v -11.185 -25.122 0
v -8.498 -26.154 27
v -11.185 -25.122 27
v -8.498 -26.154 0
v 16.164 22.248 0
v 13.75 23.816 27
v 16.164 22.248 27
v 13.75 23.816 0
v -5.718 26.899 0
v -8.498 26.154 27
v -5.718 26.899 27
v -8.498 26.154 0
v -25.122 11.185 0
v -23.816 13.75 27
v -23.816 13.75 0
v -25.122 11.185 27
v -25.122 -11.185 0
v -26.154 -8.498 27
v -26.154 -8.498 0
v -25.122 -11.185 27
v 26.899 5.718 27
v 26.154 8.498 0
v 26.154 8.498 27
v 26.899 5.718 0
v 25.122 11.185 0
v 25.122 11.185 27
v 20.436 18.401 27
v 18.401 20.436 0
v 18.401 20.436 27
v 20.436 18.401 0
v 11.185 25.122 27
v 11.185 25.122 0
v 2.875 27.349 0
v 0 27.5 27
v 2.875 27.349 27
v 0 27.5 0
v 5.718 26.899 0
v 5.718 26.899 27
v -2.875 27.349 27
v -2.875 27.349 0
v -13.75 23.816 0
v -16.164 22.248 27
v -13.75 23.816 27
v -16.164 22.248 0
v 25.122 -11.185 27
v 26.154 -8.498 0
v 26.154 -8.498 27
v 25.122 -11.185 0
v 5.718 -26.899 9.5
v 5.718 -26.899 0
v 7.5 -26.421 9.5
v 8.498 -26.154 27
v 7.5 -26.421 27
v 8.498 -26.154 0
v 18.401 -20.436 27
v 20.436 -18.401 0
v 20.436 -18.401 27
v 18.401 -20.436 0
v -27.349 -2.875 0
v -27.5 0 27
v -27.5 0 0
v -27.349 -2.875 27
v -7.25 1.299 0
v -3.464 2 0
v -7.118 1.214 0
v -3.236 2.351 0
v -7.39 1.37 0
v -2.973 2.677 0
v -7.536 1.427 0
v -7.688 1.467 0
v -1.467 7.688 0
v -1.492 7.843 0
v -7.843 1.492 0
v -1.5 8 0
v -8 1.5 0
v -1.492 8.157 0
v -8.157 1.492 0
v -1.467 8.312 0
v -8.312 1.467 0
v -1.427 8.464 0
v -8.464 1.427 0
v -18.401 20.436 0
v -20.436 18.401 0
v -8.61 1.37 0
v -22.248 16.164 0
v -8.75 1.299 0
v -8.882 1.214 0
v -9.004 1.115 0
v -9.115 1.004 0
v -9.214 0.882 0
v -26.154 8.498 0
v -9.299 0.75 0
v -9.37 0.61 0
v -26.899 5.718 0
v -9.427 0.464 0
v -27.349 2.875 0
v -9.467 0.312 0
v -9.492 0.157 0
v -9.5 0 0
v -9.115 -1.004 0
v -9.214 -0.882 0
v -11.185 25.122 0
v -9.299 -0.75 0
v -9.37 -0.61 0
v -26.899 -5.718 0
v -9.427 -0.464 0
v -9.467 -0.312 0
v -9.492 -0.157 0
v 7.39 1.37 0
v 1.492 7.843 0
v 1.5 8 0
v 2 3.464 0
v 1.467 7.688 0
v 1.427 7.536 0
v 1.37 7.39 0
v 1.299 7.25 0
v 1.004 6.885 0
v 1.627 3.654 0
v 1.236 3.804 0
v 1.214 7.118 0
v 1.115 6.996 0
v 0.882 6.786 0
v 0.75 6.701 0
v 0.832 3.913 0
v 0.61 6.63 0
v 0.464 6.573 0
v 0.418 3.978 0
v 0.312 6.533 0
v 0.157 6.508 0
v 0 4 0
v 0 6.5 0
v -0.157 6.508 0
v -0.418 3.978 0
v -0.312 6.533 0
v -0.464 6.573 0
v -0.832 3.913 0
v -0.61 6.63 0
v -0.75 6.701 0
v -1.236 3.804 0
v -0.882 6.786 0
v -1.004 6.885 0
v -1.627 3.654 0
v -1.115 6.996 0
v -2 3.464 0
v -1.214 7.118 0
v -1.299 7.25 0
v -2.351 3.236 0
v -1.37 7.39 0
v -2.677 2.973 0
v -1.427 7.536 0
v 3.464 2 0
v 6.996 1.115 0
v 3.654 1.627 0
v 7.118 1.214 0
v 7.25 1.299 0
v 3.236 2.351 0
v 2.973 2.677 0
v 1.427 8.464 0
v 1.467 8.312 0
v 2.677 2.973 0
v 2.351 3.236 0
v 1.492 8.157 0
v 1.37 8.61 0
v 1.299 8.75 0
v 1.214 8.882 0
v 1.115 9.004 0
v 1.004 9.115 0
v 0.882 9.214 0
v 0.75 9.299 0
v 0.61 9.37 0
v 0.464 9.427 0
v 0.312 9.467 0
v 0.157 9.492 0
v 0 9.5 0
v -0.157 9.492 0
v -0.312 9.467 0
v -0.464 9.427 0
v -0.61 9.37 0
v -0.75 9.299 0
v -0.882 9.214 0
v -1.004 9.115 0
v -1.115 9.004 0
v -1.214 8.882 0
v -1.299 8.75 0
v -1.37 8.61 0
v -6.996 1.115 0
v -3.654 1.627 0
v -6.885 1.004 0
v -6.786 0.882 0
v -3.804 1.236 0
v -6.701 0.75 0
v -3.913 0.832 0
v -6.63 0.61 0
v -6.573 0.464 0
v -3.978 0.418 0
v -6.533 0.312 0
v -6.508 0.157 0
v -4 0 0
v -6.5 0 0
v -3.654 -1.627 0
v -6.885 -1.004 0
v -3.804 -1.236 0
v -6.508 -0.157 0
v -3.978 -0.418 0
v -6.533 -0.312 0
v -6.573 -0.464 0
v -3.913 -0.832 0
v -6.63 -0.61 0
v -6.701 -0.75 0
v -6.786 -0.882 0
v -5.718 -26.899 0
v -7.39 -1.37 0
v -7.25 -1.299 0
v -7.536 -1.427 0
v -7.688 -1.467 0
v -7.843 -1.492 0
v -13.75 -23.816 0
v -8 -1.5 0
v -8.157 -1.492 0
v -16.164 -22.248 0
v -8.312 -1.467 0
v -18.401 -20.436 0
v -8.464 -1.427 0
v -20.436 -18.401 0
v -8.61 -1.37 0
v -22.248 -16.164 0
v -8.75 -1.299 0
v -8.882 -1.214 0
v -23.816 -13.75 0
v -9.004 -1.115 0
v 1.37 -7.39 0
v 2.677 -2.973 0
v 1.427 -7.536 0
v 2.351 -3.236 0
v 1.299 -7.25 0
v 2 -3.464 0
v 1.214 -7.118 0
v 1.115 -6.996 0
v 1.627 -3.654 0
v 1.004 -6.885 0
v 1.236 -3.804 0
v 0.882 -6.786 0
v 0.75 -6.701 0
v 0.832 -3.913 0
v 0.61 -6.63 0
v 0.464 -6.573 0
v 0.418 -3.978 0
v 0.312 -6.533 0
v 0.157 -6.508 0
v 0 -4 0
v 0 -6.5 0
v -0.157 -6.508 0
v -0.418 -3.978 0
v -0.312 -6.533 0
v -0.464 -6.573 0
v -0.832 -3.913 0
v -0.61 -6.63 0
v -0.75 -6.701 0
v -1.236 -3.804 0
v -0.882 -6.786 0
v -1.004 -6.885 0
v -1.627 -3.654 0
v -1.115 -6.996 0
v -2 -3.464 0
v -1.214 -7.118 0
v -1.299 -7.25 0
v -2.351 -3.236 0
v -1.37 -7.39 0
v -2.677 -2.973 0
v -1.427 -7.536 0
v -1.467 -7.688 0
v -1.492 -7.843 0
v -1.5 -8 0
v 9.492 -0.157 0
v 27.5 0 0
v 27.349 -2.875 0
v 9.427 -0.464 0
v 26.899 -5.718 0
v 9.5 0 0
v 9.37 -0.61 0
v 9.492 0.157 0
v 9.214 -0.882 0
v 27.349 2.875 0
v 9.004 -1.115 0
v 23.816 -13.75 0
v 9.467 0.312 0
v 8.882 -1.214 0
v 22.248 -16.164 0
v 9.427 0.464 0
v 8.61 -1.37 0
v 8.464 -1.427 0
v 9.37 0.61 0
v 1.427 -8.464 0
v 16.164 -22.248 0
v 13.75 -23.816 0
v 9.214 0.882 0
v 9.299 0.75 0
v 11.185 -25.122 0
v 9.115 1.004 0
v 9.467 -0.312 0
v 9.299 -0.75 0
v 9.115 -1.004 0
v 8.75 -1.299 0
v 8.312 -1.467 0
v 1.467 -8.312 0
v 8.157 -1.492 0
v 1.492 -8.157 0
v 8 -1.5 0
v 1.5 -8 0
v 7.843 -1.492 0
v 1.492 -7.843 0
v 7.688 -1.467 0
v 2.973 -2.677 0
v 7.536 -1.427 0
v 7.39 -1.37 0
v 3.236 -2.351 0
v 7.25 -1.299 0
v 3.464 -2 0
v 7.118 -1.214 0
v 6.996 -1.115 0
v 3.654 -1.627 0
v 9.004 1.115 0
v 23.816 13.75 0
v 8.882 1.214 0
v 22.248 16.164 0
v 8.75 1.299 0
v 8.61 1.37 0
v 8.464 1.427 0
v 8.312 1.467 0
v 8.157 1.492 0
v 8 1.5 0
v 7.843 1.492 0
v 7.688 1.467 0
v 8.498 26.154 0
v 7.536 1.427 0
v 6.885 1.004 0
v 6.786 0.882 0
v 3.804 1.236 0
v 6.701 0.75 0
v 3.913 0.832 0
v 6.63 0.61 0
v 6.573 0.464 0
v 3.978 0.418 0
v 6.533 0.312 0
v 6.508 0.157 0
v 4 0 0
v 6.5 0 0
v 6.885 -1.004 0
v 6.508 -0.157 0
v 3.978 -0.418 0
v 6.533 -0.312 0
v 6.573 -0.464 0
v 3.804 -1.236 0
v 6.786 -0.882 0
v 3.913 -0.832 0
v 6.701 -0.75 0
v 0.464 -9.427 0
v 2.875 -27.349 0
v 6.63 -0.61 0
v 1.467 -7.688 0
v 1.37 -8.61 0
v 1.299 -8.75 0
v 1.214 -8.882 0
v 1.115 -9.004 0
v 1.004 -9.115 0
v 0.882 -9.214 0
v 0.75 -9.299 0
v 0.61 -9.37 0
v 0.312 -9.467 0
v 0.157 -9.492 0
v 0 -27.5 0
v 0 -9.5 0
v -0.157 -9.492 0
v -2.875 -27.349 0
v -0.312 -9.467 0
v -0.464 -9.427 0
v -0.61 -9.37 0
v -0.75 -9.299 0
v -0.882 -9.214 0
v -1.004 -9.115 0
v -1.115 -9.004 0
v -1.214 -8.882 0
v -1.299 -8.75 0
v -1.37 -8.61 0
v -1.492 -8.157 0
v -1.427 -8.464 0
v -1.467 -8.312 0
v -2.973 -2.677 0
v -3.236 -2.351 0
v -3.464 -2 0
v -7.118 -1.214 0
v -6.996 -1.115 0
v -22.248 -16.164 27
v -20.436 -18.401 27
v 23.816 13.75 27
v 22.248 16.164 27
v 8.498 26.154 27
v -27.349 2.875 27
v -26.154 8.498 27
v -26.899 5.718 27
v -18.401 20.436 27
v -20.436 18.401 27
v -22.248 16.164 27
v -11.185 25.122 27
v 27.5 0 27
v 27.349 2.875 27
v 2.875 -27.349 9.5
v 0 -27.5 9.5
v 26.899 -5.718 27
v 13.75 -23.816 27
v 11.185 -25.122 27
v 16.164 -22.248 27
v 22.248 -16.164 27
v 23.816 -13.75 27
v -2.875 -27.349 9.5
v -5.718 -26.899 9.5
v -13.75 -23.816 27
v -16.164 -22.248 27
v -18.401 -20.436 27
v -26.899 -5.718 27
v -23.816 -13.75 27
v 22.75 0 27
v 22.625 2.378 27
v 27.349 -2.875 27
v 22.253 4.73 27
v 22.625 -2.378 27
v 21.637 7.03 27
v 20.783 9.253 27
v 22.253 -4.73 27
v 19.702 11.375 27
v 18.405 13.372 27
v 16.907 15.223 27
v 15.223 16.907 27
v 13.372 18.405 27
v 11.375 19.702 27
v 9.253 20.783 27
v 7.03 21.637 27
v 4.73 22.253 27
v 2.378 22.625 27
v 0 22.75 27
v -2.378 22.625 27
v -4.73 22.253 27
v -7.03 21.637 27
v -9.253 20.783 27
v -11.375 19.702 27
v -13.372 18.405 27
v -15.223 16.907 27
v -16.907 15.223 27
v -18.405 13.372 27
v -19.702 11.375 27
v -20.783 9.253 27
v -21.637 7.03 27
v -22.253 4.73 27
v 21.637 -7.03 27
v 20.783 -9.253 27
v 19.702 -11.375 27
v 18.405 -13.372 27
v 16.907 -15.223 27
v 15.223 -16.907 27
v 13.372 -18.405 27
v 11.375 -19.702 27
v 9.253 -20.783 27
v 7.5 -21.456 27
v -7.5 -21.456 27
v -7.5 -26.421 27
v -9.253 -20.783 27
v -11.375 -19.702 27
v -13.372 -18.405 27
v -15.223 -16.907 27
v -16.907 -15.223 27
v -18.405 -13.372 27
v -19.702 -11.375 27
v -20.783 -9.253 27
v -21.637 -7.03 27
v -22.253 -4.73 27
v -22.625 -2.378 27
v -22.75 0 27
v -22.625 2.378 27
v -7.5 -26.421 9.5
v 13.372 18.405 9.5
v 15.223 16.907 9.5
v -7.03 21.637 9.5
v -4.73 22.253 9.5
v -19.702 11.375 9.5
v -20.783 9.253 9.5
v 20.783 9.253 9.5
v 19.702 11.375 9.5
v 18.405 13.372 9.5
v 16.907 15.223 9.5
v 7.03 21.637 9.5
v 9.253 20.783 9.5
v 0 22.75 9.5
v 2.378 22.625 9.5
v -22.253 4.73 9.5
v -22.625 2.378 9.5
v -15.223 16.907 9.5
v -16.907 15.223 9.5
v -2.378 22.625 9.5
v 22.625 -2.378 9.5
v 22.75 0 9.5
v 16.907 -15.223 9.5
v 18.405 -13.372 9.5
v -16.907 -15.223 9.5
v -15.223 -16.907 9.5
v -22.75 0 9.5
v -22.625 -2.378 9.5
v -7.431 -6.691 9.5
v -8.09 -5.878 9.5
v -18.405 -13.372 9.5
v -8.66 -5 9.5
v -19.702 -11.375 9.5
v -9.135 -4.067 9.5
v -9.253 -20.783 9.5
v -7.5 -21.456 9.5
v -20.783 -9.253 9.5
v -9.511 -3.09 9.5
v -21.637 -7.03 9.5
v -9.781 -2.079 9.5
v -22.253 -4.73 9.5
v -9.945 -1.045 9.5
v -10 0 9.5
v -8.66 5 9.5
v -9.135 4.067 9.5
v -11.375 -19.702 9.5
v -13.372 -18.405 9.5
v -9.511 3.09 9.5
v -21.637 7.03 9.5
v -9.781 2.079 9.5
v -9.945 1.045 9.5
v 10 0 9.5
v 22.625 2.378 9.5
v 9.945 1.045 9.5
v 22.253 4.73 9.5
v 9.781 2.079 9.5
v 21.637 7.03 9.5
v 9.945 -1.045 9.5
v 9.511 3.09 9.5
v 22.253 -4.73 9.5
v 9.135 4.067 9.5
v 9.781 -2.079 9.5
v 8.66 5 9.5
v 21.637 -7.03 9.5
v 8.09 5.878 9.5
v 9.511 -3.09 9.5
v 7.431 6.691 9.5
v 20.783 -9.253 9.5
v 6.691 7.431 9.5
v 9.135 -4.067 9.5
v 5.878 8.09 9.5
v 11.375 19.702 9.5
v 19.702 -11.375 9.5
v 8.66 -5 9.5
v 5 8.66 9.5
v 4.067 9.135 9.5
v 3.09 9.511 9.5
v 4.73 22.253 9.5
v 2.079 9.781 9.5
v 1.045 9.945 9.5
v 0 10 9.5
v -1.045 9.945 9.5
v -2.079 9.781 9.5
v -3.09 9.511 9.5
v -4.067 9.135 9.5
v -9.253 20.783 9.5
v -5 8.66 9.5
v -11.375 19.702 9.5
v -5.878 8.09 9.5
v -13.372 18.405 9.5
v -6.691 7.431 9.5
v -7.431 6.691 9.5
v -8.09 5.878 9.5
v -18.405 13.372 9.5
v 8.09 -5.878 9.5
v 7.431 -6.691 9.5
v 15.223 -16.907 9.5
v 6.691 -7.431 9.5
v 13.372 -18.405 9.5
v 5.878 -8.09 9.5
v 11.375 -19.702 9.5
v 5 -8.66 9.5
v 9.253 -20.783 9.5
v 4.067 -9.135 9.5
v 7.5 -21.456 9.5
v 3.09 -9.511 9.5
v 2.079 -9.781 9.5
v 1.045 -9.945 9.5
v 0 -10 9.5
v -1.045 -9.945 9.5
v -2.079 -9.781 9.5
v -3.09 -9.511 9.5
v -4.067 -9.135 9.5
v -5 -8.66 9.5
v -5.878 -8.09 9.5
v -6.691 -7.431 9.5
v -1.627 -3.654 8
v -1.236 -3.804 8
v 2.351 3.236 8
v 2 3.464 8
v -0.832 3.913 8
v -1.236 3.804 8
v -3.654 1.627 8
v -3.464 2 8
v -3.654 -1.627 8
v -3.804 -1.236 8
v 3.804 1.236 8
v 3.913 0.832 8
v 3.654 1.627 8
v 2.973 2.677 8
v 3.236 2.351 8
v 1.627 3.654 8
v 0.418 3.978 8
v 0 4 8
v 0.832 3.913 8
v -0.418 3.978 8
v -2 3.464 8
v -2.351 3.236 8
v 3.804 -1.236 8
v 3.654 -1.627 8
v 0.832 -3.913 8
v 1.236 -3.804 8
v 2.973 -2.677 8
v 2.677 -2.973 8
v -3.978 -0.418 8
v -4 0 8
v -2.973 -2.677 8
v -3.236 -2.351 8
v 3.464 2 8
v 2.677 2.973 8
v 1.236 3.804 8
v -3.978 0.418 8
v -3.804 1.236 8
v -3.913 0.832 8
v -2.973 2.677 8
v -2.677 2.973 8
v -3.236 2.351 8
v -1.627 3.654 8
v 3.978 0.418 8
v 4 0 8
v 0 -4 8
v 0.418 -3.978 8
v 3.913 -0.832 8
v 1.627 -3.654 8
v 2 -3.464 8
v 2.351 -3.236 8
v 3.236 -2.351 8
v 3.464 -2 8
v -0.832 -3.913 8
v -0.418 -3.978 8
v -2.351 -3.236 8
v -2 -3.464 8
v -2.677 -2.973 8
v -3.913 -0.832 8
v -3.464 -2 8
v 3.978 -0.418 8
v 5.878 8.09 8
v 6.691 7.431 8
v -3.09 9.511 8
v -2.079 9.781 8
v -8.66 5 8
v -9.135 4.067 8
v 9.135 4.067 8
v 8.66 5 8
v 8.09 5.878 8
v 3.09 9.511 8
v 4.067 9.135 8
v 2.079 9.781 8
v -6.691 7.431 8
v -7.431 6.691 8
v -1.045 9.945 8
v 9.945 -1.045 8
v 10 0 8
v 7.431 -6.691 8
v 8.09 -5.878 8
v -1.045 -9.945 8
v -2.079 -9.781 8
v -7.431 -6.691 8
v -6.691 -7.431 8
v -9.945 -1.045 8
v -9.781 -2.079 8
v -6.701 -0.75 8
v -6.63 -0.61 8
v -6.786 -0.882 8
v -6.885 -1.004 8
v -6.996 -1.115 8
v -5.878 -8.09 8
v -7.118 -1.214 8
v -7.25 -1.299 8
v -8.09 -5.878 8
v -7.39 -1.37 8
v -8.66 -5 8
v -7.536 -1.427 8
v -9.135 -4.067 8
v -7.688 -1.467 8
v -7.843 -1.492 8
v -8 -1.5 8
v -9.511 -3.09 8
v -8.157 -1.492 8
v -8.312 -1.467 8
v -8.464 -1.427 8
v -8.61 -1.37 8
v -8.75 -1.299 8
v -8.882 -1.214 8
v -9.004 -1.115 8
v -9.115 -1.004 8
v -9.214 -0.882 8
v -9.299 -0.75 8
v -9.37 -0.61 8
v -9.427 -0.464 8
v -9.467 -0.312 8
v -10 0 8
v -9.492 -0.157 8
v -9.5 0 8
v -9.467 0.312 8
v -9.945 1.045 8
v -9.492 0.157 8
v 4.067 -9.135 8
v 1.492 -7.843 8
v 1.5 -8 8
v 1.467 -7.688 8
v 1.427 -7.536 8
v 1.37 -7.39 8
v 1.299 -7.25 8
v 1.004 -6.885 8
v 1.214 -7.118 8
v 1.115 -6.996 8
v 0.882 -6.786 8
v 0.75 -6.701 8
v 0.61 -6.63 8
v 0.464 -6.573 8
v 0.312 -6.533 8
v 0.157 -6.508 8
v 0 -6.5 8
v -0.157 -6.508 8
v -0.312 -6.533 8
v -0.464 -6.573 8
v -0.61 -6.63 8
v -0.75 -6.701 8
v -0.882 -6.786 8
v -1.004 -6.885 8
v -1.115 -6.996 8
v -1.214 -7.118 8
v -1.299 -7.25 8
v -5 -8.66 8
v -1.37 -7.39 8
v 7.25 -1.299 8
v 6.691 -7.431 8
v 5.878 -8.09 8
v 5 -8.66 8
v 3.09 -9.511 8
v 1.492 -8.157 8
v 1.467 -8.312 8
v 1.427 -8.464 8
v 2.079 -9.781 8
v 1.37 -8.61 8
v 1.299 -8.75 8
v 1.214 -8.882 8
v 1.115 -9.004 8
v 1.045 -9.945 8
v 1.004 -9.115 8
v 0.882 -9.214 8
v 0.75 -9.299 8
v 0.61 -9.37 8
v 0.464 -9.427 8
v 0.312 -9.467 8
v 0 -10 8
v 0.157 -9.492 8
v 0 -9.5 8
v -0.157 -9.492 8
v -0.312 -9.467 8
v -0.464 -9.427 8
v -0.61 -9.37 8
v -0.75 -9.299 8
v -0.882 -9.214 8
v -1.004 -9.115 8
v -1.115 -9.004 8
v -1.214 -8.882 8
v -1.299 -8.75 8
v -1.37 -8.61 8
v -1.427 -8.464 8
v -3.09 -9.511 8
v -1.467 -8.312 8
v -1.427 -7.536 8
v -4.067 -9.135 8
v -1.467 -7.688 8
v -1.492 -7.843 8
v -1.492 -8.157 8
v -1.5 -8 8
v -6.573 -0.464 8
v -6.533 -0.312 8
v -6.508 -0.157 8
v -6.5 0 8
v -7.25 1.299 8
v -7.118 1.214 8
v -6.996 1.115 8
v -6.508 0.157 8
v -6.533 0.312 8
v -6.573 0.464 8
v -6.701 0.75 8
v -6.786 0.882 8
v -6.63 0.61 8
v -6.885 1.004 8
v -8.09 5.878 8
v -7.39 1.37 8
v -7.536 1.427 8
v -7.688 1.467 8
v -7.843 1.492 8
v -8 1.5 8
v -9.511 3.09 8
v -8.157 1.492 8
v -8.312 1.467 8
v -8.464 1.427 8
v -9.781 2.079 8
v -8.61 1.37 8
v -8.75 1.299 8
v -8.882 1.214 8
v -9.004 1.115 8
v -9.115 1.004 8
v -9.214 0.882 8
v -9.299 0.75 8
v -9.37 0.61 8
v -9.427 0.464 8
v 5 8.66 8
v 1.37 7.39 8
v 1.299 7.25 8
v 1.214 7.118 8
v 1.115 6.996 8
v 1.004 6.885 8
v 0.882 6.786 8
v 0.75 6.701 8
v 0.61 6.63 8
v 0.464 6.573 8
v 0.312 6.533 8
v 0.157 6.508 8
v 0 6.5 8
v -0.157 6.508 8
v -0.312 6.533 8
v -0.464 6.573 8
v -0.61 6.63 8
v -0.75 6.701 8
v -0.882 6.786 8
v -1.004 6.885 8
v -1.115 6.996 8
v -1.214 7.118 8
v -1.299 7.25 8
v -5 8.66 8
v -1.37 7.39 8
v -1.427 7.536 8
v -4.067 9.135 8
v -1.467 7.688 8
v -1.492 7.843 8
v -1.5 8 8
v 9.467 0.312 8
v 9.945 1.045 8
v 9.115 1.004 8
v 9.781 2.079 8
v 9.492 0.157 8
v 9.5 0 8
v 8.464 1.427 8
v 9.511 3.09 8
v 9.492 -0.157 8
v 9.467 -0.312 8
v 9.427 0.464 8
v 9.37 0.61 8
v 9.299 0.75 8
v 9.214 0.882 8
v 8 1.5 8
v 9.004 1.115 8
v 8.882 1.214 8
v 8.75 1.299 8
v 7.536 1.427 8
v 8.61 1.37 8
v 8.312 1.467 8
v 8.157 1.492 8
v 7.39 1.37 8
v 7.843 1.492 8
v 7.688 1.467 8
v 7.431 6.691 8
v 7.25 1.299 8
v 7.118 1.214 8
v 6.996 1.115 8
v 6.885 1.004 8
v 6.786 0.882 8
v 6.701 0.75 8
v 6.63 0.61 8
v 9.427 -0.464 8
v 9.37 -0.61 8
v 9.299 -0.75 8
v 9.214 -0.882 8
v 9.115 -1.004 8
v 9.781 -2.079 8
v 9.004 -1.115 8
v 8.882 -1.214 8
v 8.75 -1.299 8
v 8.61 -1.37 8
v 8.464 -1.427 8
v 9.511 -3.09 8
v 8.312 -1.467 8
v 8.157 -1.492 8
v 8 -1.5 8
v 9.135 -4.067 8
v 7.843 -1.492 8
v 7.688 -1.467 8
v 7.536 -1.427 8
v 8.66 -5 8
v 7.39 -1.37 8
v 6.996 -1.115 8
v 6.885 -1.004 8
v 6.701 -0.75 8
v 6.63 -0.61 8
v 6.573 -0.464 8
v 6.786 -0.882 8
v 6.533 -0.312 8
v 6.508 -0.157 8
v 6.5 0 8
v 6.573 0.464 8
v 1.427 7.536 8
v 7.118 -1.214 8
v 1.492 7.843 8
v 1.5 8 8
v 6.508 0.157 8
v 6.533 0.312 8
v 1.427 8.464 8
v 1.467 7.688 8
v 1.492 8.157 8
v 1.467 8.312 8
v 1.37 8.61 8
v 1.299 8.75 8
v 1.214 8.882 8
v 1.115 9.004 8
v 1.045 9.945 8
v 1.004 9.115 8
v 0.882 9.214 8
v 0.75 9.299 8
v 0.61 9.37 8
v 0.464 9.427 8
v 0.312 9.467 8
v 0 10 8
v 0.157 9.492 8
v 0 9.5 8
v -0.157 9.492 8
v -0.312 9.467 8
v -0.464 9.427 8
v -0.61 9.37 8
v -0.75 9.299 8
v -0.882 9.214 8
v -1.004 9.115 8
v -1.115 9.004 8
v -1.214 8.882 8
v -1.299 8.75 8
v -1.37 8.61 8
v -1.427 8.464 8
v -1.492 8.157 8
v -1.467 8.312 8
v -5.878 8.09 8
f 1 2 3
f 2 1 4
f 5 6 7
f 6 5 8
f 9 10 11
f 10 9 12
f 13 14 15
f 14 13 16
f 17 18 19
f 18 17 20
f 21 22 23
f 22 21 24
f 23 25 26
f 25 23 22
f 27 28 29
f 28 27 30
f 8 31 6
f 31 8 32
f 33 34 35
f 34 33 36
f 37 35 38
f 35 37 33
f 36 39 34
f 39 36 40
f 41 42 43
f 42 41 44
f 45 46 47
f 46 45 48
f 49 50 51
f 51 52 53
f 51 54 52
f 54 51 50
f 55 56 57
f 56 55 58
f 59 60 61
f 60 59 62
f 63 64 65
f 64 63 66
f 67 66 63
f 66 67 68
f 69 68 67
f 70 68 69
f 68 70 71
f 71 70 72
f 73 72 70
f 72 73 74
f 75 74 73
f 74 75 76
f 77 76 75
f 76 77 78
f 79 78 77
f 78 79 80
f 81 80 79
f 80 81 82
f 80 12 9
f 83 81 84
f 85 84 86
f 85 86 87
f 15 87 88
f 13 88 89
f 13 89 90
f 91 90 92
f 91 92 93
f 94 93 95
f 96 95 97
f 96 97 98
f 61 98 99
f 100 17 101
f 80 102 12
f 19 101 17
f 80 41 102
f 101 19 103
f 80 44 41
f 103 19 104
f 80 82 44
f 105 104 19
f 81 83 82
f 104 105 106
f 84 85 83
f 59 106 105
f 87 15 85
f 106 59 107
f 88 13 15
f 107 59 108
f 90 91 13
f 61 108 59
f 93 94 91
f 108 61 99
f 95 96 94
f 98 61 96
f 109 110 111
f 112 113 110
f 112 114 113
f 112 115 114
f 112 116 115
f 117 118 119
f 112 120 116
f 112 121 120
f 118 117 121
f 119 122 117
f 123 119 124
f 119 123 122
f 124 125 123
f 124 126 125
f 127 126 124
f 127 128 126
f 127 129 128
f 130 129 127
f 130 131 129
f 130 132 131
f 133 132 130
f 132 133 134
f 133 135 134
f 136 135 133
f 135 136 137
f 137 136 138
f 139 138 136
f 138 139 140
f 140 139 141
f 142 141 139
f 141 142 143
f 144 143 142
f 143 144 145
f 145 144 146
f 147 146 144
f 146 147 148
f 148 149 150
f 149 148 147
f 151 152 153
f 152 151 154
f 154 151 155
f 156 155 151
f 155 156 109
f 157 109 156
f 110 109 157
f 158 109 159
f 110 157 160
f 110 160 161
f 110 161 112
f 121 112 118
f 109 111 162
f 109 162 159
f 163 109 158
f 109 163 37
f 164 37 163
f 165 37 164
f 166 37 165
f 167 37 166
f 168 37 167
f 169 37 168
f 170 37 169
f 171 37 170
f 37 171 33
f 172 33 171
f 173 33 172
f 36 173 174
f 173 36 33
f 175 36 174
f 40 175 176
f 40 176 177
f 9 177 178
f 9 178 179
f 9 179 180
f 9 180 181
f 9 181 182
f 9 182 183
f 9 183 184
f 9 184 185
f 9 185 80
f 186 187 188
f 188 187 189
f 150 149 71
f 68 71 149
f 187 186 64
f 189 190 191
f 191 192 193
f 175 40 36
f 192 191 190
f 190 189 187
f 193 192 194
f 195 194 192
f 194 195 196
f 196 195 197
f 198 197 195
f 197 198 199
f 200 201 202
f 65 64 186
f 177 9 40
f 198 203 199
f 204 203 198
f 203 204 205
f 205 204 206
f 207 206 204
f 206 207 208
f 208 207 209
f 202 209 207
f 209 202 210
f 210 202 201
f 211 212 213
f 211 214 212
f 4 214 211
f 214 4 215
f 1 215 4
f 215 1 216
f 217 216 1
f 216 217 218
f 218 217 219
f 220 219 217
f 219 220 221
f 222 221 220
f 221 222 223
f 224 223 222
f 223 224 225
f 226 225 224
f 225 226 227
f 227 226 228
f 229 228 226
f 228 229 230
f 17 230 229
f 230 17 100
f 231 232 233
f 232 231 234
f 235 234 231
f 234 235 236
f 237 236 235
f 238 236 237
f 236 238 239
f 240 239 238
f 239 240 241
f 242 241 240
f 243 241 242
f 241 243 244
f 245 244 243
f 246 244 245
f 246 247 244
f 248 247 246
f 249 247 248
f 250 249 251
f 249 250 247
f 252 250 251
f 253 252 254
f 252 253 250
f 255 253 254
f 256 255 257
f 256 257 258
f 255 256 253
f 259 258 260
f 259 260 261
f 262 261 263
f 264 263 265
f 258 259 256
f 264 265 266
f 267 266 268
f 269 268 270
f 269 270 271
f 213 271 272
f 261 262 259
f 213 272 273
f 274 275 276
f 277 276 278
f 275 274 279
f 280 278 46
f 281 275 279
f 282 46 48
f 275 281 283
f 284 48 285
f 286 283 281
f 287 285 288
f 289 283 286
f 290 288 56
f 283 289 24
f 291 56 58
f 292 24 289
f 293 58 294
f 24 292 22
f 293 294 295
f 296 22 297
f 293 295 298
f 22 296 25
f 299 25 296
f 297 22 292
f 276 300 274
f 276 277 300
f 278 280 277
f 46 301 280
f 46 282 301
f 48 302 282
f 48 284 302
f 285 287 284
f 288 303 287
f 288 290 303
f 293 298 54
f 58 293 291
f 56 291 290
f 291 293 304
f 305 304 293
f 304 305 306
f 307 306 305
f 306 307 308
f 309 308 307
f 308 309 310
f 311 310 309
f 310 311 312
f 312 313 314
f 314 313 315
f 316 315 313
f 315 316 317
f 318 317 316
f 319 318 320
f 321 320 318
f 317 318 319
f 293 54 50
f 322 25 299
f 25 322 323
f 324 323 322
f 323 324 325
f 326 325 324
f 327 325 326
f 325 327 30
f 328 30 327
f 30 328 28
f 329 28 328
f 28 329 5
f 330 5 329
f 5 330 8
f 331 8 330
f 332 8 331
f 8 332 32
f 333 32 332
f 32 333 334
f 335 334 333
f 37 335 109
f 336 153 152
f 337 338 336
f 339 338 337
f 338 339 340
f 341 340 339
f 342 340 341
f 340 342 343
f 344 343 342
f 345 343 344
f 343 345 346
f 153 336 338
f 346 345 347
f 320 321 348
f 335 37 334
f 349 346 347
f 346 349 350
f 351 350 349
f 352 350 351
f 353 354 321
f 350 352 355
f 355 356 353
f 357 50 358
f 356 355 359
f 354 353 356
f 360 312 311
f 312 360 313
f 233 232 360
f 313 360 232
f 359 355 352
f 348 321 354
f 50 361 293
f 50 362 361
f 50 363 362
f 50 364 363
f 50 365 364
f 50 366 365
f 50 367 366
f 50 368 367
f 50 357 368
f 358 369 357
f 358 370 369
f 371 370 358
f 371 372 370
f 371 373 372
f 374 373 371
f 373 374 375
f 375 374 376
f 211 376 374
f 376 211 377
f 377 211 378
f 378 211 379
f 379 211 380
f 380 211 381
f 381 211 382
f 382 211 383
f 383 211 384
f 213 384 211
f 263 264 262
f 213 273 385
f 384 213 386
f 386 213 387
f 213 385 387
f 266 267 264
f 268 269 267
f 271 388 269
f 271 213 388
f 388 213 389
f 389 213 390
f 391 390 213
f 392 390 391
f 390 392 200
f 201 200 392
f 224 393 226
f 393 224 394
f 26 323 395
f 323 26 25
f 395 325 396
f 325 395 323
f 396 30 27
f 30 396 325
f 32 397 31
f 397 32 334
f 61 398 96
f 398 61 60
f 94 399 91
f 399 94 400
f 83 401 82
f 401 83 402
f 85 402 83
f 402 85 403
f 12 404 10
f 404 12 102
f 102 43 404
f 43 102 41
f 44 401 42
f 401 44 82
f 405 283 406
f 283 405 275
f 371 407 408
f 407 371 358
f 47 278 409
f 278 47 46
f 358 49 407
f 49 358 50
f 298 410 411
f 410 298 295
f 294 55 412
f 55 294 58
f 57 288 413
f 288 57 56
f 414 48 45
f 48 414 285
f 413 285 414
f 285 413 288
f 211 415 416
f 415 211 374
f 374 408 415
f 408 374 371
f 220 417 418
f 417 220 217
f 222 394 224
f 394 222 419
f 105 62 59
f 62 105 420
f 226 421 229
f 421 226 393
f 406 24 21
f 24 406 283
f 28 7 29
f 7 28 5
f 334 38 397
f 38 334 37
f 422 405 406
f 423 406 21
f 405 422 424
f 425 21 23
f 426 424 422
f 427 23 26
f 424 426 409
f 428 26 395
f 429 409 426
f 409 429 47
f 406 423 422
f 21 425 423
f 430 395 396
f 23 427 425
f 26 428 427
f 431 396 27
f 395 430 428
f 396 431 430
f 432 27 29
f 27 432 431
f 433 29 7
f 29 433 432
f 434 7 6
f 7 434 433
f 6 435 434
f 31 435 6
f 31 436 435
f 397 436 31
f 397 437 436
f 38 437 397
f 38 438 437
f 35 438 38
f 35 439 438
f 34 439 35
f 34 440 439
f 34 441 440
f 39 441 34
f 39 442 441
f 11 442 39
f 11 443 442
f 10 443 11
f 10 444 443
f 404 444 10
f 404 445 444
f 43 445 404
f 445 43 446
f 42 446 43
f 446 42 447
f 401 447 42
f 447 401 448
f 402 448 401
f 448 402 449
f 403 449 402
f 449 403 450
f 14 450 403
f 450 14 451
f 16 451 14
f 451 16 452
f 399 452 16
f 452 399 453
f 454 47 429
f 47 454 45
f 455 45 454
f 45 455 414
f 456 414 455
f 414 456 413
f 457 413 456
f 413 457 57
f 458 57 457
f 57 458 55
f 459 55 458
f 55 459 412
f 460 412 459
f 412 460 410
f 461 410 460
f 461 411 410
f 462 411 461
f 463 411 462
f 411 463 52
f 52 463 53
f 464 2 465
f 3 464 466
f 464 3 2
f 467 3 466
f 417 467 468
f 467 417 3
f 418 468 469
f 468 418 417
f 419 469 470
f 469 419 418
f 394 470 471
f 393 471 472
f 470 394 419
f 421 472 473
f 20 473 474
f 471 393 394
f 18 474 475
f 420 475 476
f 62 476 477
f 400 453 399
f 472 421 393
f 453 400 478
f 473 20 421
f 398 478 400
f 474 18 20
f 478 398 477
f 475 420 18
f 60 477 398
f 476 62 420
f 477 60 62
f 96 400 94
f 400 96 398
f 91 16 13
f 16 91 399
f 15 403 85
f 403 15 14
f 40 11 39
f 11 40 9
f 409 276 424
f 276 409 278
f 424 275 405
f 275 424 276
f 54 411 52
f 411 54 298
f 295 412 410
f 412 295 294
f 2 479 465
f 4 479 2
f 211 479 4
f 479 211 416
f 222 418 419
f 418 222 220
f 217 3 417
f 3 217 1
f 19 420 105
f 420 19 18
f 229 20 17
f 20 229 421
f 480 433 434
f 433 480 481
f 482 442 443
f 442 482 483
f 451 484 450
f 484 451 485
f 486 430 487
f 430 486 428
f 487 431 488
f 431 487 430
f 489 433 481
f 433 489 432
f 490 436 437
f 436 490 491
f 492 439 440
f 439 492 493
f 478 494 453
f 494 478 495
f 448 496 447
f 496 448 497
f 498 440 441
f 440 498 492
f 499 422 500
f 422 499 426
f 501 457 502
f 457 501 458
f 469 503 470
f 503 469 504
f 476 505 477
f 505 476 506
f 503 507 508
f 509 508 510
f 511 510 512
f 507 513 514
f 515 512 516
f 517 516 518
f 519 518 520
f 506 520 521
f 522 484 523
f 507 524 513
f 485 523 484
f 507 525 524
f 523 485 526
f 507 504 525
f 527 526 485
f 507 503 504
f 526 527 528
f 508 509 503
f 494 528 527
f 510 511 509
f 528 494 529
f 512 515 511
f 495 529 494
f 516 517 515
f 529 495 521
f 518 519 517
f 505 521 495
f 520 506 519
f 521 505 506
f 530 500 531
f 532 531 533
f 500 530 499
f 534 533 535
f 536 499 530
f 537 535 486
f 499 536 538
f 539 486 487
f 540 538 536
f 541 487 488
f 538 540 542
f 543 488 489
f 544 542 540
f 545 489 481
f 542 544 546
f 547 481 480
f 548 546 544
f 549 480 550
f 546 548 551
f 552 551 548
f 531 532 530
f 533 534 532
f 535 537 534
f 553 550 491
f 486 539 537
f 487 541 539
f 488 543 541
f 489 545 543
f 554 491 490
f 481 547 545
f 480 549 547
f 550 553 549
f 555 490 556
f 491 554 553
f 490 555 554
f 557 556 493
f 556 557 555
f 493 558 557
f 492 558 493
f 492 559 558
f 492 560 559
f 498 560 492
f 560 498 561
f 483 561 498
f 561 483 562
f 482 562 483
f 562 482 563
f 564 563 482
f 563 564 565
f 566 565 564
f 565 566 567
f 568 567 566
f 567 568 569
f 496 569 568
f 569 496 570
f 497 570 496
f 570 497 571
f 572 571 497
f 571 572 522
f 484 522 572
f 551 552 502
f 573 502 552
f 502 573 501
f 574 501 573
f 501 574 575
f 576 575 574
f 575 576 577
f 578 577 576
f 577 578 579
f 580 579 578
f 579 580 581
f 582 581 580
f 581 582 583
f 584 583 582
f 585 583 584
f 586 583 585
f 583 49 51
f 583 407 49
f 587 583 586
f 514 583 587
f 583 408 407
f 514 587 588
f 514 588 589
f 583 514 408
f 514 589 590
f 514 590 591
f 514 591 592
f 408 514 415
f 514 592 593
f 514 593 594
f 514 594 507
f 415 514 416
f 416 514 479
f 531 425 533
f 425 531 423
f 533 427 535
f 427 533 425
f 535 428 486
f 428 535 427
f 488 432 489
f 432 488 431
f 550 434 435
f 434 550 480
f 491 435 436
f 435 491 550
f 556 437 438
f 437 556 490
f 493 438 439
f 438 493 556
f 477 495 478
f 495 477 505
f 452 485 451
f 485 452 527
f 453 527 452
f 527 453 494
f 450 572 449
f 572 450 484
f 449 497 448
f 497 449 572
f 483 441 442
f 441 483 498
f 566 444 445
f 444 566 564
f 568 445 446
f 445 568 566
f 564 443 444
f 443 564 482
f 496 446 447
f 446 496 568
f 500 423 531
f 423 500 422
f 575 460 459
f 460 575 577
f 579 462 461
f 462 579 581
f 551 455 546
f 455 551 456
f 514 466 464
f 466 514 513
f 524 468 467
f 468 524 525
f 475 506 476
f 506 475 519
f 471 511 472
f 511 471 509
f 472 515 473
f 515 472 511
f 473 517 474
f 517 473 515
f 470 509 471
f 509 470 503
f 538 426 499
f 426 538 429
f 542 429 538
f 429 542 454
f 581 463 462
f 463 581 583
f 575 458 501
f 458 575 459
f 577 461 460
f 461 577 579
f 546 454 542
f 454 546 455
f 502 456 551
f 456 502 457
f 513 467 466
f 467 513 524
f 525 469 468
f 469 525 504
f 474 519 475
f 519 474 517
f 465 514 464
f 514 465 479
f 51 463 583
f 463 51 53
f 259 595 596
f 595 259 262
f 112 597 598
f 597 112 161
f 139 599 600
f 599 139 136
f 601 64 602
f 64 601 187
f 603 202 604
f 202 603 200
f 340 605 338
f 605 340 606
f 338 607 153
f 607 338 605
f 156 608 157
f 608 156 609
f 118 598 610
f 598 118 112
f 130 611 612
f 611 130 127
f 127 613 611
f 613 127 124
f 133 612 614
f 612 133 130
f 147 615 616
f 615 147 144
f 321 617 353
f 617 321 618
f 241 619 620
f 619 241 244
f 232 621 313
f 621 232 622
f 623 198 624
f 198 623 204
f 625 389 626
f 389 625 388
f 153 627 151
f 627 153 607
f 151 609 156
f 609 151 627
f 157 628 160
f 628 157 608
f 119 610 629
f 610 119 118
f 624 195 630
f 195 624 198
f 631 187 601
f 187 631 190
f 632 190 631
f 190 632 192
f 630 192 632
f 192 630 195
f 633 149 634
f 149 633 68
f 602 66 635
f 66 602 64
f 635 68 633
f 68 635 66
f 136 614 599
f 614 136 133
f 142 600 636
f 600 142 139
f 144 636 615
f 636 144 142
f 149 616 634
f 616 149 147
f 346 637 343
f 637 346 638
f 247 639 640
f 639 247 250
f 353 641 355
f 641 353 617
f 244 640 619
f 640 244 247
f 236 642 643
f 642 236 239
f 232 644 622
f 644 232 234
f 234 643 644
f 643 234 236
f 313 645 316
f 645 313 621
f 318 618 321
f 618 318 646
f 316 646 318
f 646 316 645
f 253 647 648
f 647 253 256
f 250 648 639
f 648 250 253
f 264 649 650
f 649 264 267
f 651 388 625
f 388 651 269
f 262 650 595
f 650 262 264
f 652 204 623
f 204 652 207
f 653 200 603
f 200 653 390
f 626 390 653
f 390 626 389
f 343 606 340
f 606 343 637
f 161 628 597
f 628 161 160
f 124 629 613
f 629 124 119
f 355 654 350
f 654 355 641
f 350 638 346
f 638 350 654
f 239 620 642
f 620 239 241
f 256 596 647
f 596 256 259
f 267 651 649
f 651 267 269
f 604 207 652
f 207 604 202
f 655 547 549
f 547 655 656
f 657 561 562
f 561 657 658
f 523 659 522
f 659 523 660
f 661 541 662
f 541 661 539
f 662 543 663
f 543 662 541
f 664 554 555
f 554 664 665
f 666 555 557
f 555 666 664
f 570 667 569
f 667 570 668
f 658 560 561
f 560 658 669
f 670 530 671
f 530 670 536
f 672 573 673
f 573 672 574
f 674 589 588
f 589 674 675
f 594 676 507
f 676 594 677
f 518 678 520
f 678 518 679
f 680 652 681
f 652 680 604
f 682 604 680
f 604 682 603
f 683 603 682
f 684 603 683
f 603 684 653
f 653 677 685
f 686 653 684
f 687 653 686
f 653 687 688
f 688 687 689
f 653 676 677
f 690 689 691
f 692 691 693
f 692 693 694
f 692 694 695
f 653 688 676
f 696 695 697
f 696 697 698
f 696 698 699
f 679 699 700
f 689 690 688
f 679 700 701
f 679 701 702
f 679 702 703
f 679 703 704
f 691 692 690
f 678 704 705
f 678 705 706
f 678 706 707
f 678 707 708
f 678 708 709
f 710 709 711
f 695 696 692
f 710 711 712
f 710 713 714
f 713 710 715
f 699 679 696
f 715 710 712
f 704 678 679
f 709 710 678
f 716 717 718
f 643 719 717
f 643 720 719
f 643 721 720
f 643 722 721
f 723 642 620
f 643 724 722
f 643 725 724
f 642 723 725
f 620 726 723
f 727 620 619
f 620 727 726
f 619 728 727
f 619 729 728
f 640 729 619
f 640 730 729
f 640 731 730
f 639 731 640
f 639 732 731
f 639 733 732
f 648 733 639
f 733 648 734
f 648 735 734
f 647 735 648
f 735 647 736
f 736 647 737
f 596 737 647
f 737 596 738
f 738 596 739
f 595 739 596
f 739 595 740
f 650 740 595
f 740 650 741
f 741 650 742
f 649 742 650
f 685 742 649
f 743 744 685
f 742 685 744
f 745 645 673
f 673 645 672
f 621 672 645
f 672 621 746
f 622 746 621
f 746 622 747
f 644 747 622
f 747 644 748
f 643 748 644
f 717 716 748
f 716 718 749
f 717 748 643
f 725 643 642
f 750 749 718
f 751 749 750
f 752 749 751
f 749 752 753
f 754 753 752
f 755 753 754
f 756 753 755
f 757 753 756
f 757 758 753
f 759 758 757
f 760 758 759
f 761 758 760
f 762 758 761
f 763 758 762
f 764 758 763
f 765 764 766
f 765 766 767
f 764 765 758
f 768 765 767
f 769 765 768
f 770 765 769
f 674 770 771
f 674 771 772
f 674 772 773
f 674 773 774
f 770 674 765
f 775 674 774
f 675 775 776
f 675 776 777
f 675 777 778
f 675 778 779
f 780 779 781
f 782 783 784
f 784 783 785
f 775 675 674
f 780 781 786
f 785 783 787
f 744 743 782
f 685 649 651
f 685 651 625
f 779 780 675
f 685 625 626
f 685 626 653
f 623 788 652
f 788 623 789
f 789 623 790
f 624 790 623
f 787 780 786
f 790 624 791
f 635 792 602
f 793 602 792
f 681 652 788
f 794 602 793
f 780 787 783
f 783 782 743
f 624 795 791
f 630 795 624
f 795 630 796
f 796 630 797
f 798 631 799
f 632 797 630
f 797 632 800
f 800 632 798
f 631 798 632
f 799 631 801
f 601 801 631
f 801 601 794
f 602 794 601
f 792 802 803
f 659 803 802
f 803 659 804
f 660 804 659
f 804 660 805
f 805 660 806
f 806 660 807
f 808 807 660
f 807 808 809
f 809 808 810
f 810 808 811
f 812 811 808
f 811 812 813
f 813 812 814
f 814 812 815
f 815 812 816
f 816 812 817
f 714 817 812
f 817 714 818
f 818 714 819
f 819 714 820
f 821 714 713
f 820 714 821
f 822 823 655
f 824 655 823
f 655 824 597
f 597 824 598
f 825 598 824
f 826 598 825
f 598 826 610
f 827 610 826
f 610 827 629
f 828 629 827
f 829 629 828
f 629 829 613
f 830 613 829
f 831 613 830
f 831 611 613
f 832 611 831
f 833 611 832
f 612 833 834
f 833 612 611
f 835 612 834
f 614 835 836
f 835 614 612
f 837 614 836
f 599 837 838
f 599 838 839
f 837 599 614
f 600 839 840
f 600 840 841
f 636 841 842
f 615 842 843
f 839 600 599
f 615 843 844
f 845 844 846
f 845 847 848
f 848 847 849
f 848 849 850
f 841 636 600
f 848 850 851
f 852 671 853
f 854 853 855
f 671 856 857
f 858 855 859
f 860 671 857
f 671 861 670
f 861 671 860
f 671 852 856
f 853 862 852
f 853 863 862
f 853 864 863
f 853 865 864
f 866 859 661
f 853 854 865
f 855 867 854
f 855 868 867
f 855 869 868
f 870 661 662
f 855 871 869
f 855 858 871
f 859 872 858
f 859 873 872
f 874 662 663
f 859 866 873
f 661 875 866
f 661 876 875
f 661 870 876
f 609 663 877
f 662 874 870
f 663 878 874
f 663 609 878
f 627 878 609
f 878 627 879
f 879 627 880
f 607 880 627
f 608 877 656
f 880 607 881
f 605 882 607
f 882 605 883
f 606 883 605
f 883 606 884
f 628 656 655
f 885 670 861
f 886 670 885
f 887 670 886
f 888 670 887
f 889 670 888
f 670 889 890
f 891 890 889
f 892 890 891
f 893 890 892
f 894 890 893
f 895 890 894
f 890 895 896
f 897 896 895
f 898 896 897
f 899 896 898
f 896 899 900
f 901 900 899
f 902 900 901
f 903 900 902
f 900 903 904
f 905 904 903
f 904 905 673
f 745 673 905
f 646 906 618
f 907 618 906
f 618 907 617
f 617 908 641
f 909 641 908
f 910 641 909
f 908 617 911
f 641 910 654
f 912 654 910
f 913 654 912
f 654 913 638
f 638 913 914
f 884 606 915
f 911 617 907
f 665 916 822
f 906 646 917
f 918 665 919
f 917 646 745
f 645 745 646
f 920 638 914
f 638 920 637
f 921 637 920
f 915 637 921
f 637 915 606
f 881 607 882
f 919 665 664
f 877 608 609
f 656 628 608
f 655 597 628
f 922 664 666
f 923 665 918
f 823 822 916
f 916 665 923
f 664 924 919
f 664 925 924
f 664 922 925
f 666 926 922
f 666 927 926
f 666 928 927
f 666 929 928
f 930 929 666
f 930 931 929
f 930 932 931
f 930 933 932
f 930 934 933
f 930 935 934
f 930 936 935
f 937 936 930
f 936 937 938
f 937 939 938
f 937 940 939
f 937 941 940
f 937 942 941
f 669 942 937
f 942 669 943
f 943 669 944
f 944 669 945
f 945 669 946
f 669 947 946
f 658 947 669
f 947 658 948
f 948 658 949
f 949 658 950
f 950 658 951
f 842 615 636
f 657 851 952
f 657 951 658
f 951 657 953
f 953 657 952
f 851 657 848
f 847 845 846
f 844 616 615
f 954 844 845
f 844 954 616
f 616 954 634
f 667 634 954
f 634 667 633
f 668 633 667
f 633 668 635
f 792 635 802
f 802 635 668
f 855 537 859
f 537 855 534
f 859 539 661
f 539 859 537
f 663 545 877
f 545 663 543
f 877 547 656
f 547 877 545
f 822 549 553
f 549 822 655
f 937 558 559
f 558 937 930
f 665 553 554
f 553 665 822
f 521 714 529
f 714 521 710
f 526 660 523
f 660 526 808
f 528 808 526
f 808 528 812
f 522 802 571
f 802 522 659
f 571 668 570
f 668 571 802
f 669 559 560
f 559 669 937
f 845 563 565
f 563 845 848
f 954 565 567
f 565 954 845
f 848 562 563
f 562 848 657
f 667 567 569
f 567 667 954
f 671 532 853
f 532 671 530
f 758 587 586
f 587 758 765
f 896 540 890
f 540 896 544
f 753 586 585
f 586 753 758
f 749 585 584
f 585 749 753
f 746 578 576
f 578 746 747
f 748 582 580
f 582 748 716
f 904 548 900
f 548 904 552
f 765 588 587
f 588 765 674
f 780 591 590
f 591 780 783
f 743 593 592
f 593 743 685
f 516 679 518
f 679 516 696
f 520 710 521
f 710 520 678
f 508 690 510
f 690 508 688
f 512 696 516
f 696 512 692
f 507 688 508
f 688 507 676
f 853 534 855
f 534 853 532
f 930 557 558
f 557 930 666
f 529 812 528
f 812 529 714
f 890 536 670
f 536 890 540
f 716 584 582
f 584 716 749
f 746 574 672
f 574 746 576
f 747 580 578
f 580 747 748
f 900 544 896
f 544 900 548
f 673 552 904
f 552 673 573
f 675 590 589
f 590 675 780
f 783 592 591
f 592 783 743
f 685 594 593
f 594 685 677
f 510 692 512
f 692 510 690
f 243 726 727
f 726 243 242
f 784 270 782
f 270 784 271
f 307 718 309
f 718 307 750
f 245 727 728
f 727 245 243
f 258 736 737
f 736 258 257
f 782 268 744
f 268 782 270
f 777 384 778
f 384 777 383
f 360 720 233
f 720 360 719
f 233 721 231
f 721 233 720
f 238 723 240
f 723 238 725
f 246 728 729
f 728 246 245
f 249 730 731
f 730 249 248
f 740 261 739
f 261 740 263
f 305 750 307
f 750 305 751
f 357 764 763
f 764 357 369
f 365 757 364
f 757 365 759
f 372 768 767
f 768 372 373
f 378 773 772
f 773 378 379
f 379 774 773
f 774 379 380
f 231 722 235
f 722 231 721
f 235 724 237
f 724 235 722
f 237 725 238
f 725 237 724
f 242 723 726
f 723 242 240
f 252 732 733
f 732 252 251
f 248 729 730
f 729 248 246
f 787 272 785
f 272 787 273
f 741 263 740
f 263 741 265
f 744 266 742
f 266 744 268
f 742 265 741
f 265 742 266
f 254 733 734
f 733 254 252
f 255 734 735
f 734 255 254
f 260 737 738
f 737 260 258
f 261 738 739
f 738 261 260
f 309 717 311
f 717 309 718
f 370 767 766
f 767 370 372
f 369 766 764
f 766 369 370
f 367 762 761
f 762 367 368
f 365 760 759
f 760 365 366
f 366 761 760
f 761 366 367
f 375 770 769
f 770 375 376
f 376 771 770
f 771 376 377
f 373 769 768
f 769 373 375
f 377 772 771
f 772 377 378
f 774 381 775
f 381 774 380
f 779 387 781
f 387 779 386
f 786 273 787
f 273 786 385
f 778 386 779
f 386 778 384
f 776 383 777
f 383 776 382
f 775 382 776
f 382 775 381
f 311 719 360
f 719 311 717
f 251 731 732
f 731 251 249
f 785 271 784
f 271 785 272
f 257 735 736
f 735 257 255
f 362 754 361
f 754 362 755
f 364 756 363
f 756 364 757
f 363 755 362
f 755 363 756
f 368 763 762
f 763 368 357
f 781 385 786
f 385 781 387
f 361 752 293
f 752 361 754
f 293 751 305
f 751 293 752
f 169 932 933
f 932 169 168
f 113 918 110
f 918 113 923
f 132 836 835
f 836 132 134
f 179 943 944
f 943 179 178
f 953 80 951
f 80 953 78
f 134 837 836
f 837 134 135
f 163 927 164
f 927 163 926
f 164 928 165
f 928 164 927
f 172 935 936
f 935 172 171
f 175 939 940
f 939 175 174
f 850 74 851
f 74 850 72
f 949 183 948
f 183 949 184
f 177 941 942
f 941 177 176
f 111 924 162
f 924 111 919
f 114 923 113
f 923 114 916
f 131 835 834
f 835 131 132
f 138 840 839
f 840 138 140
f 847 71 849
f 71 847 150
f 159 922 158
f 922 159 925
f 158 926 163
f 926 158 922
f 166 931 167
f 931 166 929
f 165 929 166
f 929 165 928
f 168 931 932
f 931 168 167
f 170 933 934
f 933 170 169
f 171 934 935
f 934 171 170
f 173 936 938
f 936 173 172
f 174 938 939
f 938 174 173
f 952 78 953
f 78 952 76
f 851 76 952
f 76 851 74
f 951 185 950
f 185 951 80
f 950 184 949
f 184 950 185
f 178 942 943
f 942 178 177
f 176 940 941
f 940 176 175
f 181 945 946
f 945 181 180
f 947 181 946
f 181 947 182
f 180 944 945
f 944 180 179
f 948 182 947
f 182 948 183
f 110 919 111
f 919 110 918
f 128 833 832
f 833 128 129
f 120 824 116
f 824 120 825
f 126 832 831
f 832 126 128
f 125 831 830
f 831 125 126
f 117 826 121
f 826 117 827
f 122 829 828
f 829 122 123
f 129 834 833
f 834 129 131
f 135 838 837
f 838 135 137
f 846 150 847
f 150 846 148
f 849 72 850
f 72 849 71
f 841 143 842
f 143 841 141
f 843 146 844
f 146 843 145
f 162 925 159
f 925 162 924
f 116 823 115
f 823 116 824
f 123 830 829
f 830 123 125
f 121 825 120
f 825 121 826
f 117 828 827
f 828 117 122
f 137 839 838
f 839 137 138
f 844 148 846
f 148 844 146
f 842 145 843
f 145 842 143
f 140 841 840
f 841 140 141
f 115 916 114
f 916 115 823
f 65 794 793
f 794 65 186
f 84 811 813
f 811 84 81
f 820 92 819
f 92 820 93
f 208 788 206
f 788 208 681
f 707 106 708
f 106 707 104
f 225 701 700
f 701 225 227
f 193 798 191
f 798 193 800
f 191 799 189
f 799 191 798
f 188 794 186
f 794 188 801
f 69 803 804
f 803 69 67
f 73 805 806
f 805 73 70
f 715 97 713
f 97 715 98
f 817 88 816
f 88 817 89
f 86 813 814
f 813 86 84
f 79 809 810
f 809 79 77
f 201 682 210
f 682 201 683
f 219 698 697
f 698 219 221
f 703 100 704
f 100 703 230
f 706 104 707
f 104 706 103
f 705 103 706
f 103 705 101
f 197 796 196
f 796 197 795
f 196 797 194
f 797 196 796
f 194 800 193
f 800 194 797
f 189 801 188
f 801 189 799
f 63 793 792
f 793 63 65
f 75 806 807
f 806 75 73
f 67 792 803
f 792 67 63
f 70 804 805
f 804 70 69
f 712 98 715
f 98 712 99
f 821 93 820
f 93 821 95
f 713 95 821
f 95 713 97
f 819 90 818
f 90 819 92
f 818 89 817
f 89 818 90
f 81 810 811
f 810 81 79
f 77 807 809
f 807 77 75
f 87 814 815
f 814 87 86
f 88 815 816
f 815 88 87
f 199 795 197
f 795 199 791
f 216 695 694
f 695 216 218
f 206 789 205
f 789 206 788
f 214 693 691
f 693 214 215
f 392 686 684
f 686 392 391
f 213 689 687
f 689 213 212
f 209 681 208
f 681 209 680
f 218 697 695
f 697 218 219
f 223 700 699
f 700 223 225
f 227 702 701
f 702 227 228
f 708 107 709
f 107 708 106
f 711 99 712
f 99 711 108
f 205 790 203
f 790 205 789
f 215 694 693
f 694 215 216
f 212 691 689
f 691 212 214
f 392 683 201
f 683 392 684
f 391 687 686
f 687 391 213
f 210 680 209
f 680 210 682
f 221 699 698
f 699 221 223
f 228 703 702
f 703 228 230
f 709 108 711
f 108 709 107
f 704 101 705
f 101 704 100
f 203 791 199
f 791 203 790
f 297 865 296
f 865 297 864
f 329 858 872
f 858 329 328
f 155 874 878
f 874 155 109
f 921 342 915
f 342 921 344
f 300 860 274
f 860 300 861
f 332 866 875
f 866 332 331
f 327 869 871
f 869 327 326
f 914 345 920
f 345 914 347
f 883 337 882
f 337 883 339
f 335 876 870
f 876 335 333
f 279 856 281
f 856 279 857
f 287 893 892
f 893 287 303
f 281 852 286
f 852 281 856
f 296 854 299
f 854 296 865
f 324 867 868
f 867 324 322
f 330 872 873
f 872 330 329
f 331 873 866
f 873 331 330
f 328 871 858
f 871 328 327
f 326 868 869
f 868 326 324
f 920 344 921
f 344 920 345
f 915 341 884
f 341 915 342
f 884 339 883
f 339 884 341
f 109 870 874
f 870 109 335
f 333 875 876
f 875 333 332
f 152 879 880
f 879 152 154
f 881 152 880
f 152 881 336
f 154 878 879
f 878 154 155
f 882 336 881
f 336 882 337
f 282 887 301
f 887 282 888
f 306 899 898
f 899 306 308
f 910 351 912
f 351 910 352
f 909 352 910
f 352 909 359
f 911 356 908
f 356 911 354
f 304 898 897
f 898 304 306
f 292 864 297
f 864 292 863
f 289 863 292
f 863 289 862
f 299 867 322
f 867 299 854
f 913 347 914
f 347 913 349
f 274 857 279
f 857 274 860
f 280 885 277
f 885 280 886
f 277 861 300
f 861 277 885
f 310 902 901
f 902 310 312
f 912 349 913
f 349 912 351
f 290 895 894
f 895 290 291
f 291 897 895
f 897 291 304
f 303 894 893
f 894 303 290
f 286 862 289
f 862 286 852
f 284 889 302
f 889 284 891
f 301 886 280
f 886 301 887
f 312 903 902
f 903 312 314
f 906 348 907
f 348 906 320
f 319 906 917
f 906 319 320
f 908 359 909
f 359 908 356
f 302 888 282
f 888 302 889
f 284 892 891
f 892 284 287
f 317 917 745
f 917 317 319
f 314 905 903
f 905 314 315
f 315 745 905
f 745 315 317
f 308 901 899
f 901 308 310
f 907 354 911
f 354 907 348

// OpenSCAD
include <BOSL/constants.scad>
use <BOSL/shapes.scad>
use <BOSL/transforms.scad>
use <BOSL/masks.scad>

$fn=60; //circle smoothness

wiggle=0.5;

main();

  //, edges=EDGES_TOP + EDGES_Z_ALL
  
  bottom = 19.5;
  height = 27;
  stickX = 45;
  stickY = 45;
  glidePointDiameter=45; 
  
module main(){
  difference(){
    color("lime") cylinder(h=height, d=stickX+10); //cuboid([stickX+10, stickY+10, height], fillet=2, edges=EDGES_TOP + EDGES_Z_ALL); // outer shell
    color("green") up(9.5)  cylinder(h=20, d=glidePointDiameter+wiggle); // cutout inner space
    color("blue")  forward(25) up(bottom) cuboid([15, 20, 20]); // cutouts for usb & save print time
    //color("blue") up(bottom) cuboid([80, stickY/2, 20]); //cutout to save print time
    color("pink") #cylinder(h=10, d=8); //hole for t-nut
    color("blue") up(8) cylinder(h=10, d=20); // countersink for t-nut
    color("orange") forward(8) #cylinder(h=10, d=3); // t-nut tab
    color("orange") back(8) #cylinder(h=10, d=3); // t-nut tab
    color("orange") left(8) #cylinder(h=10, d=3); // t-nut tab
    color("orange") right(8) #cylinder(h=10, d=3); // t-nut tab
  }
}  
